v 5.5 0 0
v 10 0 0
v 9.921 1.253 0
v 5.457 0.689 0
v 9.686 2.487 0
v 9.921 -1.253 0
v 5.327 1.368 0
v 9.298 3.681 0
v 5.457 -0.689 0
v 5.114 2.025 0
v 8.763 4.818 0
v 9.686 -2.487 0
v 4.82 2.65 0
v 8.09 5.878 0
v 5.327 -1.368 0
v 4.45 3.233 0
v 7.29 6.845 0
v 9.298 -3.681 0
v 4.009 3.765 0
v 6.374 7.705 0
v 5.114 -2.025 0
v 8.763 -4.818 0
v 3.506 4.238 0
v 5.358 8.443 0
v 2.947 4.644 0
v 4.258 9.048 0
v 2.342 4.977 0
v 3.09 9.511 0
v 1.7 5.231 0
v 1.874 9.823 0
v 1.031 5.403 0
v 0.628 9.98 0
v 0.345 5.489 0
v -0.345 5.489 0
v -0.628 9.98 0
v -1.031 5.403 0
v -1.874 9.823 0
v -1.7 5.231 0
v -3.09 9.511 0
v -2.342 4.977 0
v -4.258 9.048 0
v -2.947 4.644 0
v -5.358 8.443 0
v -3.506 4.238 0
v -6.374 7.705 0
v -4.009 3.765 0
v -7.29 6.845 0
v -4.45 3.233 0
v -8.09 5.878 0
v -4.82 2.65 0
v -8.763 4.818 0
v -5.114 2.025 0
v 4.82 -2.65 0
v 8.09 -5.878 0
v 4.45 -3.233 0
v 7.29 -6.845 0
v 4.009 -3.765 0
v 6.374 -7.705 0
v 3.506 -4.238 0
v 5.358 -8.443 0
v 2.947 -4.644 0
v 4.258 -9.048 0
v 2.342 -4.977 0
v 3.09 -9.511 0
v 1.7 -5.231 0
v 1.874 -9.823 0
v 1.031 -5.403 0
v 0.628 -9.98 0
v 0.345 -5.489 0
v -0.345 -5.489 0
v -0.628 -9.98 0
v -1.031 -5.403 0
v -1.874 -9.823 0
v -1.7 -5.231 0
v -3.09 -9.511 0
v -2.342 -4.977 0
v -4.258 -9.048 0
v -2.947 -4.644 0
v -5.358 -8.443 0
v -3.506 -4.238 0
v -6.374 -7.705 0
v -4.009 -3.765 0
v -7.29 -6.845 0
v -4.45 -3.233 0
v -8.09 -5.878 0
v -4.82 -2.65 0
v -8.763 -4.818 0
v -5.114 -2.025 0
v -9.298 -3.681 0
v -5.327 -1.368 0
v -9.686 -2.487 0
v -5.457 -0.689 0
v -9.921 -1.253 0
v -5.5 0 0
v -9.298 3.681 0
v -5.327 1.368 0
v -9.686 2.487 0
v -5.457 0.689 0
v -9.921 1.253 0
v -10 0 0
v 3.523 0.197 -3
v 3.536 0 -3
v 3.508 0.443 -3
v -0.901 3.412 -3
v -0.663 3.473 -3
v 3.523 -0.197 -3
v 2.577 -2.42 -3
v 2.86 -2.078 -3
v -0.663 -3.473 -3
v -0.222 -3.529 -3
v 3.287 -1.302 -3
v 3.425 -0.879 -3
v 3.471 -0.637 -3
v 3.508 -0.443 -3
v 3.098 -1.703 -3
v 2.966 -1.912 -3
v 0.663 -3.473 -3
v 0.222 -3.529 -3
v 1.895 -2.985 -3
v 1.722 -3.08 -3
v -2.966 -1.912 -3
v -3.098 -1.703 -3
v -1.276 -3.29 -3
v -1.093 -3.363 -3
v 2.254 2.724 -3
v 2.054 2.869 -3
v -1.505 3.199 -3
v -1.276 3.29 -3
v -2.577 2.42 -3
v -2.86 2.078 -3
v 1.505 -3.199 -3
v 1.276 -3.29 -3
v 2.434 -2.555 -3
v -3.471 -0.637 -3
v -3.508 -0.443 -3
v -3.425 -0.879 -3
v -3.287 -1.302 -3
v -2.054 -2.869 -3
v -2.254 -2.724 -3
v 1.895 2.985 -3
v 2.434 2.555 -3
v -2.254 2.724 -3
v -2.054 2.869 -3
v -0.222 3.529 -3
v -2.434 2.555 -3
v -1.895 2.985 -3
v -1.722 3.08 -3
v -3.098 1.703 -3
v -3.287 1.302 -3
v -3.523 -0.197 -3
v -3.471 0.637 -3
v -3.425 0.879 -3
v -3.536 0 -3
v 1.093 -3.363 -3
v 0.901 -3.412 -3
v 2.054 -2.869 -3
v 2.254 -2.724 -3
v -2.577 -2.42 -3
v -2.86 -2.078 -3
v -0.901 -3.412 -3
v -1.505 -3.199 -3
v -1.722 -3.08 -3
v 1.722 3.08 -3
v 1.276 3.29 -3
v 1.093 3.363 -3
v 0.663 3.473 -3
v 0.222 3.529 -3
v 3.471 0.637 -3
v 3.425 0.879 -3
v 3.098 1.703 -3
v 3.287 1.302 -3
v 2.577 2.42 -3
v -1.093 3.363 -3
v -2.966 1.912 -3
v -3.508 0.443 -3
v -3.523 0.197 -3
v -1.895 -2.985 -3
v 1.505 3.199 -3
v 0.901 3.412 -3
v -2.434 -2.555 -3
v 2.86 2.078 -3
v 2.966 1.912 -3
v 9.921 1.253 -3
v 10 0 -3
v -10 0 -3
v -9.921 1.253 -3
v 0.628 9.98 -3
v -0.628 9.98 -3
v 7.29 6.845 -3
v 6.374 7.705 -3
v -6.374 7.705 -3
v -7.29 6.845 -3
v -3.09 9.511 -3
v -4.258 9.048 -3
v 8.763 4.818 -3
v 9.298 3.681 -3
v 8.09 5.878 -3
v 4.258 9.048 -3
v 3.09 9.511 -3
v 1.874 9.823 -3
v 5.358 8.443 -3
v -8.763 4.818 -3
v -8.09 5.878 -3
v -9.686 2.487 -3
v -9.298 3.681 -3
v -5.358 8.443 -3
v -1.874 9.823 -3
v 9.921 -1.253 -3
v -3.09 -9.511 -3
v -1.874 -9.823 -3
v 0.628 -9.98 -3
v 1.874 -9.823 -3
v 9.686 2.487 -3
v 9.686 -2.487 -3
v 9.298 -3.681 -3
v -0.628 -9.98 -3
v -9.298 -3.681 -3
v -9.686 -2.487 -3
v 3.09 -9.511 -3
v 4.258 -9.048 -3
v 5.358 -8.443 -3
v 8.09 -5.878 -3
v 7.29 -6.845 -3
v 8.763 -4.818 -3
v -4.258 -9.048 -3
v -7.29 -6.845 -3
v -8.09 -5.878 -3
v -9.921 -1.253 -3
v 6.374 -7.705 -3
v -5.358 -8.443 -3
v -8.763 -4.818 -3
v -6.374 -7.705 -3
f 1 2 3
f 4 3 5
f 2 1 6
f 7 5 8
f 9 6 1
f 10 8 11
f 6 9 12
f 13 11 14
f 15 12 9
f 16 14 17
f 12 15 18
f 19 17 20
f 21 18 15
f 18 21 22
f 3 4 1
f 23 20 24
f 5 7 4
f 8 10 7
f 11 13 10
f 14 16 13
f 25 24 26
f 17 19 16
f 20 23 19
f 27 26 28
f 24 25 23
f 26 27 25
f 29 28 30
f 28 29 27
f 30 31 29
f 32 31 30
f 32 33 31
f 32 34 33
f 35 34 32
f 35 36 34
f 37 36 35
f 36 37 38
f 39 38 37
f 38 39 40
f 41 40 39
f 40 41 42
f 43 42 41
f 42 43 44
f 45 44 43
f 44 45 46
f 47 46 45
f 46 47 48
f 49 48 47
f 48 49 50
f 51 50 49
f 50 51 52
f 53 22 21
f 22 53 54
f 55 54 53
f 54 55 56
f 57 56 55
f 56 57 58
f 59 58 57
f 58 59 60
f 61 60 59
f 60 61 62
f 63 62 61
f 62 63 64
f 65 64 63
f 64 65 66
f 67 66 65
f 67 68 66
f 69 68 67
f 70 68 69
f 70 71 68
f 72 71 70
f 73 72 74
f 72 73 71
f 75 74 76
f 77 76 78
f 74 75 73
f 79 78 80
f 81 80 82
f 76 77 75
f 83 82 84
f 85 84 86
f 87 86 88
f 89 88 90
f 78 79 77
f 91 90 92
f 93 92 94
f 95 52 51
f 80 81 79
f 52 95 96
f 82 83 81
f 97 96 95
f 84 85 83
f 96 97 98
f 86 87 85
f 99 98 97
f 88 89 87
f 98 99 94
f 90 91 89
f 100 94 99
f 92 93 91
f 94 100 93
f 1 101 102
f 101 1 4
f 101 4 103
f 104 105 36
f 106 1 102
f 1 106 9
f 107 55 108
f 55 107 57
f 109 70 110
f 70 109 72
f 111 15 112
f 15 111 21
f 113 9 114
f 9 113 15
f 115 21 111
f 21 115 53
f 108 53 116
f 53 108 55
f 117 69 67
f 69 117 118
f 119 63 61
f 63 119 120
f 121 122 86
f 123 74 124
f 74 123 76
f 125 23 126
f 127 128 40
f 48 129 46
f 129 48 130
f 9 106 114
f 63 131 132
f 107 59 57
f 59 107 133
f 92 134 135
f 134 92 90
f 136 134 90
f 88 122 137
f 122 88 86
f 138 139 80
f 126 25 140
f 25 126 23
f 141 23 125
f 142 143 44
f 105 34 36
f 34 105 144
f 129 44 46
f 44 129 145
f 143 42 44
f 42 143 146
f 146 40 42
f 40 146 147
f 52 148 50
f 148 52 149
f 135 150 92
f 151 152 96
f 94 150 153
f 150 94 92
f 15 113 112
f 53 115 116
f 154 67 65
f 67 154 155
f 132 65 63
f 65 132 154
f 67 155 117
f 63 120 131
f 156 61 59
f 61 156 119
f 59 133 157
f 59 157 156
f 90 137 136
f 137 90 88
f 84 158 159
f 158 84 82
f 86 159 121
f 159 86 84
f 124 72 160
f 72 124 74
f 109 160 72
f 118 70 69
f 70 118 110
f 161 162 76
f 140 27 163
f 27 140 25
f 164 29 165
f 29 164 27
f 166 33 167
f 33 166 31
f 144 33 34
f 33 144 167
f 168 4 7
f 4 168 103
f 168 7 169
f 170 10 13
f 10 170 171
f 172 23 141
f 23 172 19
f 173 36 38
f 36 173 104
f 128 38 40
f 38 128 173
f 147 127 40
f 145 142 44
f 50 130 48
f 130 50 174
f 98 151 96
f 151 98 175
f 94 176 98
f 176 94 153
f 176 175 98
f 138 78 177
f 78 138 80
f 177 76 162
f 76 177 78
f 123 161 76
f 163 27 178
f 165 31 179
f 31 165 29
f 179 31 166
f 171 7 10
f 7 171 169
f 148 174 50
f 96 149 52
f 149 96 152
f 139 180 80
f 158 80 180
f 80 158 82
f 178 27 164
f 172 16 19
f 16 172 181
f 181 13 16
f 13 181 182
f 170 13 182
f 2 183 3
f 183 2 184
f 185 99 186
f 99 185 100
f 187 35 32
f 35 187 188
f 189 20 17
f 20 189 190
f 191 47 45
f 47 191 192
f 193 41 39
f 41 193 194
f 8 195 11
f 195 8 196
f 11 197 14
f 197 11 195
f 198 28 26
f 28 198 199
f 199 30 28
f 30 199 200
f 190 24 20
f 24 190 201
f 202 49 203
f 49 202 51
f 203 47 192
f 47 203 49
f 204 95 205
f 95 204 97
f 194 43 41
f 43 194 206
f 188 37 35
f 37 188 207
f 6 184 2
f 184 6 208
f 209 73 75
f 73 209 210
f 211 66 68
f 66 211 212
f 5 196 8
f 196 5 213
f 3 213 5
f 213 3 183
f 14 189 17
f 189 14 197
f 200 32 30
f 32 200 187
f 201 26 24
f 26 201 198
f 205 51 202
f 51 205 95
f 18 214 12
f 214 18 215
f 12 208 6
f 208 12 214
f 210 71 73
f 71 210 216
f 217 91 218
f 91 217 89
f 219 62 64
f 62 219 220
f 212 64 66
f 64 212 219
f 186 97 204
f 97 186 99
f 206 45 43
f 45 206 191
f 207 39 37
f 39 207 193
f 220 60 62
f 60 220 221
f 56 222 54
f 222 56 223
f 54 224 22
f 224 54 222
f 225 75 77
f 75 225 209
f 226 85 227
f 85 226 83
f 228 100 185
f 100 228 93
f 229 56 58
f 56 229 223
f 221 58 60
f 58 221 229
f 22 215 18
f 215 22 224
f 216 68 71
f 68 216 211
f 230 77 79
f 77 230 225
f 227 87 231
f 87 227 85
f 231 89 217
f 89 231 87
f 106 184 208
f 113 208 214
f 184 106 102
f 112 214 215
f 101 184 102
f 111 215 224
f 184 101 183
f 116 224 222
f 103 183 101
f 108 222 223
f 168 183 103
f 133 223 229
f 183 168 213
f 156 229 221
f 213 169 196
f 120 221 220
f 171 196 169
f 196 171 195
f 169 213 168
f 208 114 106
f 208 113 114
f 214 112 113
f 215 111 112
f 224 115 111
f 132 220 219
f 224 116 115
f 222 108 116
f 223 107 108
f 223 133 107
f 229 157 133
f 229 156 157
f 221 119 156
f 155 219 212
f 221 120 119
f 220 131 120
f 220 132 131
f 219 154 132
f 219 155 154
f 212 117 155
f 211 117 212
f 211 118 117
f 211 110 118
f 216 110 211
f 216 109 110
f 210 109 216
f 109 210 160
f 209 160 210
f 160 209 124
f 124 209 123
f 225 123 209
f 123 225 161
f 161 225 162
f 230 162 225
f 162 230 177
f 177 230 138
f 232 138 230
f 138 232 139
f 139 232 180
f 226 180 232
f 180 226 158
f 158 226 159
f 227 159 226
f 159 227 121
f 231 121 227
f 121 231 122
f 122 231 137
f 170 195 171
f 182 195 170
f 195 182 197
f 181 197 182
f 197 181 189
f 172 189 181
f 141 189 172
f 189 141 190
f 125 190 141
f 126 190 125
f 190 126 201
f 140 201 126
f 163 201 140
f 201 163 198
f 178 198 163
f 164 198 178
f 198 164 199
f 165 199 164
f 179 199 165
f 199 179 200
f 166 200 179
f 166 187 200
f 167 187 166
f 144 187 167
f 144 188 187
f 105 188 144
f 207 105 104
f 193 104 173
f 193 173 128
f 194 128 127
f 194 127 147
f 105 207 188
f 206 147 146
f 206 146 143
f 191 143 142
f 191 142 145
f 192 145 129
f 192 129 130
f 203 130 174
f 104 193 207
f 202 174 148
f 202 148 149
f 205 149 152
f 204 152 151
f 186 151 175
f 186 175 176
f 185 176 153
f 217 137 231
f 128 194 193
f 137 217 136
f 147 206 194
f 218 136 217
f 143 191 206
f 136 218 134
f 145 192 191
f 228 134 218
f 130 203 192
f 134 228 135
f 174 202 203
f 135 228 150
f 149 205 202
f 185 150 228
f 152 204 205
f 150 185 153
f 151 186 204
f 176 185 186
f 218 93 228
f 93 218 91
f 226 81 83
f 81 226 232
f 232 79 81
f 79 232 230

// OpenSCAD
$fn = 50;


difference() {
	union() {
		translate(v = [0, 0, -3.0000000000]) {
			cylinder(h = 3, r = 10.0000000000);
		}
		cylinder(h = 0, r = 20.0000000000);
	}
	union() {
		translate(v = [0, 0, 0]) {
			rotate(a = [0, 0, 0]) {
				difference() {
					union() {
						#translate(v = [0, 0, -3.0000000000]) {
							cylinder(h = 3, r = 2.2500000000);
						}
						#translate(v = [0, 0, -4.2000000000]) {
							cylinder(h = 4.2000000000, r = 10.0000000000, r1 = 2.7500000000, r2 = 5.5000000000);
						}
						#translate(v = [0, 0, -3.0000000000]) {
							cylinder(h = 3, r = 2.7500000000);
						}
						#translate(v = [0, 0, -3.0000000000]) {
							cylinder(h = 3, r = 2.2500000000);
						}
					}
					union();
				}
			}
		}
	}
}
